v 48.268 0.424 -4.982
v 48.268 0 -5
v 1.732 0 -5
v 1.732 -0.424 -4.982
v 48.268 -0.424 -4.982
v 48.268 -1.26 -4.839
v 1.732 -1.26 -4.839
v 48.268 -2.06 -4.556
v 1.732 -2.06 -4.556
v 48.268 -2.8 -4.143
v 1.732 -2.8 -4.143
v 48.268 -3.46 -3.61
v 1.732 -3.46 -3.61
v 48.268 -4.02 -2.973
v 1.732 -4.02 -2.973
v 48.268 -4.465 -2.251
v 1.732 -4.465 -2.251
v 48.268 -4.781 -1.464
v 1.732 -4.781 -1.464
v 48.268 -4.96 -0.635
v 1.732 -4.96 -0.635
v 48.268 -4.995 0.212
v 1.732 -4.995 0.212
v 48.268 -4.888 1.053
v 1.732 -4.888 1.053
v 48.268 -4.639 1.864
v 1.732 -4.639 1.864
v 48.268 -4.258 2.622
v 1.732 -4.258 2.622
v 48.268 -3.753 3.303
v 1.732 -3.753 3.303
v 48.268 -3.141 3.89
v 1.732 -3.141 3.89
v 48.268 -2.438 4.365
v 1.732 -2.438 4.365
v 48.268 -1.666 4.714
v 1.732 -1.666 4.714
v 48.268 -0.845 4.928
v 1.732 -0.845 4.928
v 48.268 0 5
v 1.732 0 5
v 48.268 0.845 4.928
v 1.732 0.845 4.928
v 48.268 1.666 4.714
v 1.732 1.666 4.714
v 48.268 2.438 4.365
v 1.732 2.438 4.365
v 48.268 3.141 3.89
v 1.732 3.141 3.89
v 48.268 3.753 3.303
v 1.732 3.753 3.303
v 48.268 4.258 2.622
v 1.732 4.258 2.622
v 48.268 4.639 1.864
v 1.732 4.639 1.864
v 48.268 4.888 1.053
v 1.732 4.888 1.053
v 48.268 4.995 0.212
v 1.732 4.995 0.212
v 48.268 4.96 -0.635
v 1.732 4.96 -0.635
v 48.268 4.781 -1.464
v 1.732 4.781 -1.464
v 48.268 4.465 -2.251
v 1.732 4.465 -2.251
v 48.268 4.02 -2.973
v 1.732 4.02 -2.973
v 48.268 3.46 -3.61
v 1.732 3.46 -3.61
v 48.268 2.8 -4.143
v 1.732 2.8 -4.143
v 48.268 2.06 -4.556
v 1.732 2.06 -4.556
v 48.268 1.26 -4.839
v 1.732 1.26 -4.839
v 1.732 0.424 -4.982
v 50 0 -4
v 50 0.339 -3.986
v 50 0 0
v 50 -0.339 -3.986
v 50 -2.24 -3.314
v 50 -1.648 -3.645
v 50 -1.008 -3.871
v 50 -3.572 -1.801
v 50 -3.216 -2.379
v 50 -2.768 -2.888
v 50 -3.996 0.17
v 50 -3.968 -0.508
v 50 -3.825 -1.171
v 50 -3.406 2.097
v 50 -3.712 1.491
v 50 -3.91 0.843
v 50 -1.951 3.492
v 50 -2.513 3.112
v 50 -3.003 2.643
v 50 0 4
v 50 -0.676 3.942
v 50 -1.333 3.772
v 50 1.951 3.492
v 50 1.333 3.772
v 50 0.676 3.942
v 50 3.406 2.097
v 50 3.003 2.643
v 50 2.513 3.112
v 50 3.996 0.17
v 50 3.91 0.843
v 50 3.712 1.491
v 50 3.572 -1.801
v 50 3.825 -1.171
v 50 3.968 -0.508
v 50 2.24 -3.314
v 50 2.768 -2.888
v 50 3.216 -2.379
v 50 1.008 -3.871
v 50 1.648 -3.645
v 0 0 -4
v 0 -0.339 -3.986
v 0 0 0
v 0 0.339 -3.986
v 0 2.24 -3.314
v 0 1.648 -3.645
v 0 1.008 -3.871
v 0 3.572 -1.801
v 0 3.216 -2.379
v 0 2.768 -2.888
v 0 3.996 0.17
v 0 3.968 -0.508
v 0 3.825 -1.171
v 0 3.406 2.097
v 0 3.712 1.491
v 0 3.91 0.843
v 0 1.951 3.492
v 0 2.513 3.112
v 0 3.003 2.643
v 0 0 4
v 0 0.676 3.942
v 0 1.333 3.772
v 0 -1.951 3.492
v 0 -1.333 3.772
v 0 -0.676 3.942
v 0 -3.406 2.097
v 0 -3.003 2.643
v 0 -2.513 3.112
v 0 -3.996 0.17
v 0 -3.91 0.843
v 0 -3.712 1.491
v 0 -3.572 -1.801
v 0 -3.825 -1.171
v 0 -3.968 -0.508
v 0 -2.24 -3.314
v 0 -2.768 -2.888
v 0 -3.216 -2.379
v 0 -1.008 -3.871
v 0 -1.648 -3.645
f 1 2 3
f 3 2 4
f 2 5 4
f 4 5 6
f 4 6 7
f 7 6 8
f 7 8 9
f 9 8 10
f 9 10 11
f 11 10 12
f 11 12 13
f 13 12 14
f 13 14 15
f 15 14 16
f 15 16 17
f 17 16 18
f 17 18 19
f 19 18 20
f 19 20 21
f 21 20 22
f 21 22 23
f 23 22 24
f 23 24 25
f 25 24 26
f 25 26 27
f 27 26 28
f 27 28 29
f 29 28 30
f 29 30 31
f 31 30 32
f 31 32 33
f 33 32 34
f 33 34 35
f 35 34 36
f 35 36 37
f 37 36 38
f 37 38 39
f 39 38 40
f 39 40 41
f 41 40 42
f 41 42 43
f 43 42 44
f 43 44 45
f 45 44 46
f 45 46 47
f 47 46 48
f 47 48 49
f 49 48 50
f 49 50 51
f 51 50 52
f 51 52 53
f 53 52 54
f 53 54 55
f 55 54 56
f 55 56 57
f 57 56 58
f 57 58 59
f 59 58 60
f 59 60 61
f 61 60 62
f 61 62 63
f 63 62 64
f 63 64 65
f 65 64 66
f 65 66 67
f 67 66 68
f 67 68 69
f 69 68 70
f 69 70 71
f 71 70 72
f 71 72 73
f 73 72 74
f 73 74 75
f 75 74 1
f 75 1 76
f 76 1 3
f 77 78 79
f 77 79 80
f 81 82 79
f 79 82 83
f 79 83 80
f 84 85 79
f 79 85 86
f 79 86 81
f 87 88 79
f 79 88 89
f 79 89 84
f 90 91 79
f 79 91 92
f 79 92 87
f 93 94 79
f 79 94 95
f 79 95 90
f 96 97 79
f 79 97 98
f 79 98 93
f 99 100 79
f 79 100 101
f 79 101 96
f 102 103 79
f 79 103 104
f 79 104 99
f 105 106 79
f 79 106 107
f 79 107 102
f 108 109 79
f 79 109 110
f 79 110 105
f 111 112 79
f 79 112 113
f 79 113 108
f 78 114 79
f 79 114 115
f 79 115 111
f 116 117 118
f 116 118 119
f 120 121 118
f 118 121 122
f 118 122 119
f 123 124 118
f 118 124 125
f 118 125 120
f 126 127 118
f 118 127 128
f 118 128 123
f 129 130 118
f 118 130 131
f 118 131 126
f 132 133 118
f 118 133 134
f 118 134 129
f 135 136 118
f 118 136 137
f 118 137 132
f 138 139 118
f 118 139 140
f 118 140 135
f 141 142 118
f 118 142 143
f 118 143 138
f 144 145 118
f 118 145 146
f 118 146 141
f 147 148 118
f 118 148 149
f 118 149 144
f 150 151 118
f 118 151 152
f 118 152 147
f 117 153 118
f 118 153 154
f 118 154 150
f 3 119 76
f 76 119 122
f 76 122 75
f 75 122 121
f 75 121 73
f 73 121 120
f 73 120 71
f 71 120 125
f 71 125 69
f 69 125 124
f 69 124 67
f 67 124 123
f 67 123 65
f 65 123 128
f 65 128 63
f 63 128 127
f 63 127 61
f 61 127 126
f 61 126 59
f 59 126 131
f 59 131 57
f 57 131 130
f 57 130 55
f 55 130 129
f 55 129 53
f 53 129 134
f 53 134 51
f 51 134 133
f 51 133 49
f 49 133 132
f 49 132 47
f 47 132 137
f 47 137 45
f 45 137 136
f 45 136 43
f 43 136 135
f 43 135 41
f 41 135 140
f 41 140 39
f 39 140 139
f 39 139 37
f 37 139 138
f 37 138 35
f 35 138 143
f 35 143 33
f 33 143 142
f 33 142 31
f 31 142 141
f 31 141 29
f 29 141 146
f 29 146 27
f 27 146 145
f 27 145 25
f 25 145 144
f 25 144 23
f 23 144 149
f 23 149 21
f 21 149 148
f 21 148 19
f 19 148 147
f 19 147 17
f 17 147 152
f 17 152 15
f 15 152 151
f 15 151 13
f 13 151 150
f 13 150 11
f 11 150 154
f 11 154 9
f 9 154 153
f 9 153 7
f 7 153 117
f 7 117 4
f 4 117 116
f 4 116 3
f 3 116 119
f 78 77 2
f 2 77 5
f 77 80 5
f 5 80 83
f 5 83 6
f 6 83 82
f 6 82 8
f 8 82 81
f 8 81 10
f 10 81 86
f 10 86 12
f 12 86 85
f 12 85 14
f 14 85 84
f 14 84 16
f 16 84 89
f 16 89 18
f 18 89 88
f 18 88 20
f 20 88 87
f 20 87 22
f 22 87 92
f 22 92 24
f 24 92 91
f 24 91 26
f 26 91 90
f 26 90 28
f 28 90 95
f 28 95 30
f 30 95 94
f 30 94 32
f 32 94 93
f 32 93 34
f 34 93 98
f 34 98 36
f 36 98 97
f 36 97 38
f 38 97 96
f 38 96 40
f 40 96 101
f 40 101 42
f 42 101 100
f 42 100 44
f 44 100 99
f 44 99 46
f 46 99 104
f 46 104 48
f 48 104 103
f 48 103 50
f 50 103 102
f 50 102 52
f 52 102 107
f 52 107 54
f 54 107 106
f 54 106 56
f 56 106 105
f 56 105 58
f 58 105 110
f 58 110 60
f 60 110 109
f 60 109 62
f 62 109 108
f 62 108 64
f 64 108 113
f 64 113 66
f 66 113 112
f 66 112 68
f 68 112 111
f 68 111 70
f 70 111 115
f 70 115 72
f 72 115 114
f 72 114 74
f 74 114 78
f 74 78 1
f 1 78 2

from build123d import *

# Parameters (mm, degrees)
SKETCH4_R           = 5
BOSS_EXTRUDE2_DEPTH = 50
CHAMFER1_SIZE       = 1
CHAMFER1_SIZE2      = 1.732050808
CHAMFER2_SIZE       = 1
CHAMFER2_SIZE2      = 1.732050808


with BuildPart() as part:
    # Sketch4 → Boss-Extrude2 (new body)
    with BuildSketch(Plane(origin=(0, 0, 0), x_dir=(0, 0, -1), z_dir=(1, 0, 0))):
        Circle(SKETCH4_R)
    extrude(amount=BOSS_EXTRUDE2_DEPTH)

    # Chamfer1
    chamfer1_edges = [part.edges().sort_by_distance(p)[0] for p in [
        (0, 0, 5),
    ]]
    chamfer1_side = [part.faces().sort_by_distance(p)[0] for p in [
        (0, 0, 0),
    ]]
    chamfer(chamfer1_edges, length=CHAMFER1_SIZE, length2=CHAMFER1_SIZE2, reference=chamfer1_side[0])

    # Chamfer2
    chamfer2_edges = [part.edges().sort_by_distance(p)[0] for p in [
        (50, 0, 5),
    ]]
    chamfer2_side = [part.faces().sort_by_distance(p)[0] for p in [
        (50, 0, 0),
    ]]
    chamfer(chamfer2_edges, length=CHAMFER2_SIZE, length2=CHAMFER2_SIZE2, reference=chamfer2_side[0])


solid = part.part
